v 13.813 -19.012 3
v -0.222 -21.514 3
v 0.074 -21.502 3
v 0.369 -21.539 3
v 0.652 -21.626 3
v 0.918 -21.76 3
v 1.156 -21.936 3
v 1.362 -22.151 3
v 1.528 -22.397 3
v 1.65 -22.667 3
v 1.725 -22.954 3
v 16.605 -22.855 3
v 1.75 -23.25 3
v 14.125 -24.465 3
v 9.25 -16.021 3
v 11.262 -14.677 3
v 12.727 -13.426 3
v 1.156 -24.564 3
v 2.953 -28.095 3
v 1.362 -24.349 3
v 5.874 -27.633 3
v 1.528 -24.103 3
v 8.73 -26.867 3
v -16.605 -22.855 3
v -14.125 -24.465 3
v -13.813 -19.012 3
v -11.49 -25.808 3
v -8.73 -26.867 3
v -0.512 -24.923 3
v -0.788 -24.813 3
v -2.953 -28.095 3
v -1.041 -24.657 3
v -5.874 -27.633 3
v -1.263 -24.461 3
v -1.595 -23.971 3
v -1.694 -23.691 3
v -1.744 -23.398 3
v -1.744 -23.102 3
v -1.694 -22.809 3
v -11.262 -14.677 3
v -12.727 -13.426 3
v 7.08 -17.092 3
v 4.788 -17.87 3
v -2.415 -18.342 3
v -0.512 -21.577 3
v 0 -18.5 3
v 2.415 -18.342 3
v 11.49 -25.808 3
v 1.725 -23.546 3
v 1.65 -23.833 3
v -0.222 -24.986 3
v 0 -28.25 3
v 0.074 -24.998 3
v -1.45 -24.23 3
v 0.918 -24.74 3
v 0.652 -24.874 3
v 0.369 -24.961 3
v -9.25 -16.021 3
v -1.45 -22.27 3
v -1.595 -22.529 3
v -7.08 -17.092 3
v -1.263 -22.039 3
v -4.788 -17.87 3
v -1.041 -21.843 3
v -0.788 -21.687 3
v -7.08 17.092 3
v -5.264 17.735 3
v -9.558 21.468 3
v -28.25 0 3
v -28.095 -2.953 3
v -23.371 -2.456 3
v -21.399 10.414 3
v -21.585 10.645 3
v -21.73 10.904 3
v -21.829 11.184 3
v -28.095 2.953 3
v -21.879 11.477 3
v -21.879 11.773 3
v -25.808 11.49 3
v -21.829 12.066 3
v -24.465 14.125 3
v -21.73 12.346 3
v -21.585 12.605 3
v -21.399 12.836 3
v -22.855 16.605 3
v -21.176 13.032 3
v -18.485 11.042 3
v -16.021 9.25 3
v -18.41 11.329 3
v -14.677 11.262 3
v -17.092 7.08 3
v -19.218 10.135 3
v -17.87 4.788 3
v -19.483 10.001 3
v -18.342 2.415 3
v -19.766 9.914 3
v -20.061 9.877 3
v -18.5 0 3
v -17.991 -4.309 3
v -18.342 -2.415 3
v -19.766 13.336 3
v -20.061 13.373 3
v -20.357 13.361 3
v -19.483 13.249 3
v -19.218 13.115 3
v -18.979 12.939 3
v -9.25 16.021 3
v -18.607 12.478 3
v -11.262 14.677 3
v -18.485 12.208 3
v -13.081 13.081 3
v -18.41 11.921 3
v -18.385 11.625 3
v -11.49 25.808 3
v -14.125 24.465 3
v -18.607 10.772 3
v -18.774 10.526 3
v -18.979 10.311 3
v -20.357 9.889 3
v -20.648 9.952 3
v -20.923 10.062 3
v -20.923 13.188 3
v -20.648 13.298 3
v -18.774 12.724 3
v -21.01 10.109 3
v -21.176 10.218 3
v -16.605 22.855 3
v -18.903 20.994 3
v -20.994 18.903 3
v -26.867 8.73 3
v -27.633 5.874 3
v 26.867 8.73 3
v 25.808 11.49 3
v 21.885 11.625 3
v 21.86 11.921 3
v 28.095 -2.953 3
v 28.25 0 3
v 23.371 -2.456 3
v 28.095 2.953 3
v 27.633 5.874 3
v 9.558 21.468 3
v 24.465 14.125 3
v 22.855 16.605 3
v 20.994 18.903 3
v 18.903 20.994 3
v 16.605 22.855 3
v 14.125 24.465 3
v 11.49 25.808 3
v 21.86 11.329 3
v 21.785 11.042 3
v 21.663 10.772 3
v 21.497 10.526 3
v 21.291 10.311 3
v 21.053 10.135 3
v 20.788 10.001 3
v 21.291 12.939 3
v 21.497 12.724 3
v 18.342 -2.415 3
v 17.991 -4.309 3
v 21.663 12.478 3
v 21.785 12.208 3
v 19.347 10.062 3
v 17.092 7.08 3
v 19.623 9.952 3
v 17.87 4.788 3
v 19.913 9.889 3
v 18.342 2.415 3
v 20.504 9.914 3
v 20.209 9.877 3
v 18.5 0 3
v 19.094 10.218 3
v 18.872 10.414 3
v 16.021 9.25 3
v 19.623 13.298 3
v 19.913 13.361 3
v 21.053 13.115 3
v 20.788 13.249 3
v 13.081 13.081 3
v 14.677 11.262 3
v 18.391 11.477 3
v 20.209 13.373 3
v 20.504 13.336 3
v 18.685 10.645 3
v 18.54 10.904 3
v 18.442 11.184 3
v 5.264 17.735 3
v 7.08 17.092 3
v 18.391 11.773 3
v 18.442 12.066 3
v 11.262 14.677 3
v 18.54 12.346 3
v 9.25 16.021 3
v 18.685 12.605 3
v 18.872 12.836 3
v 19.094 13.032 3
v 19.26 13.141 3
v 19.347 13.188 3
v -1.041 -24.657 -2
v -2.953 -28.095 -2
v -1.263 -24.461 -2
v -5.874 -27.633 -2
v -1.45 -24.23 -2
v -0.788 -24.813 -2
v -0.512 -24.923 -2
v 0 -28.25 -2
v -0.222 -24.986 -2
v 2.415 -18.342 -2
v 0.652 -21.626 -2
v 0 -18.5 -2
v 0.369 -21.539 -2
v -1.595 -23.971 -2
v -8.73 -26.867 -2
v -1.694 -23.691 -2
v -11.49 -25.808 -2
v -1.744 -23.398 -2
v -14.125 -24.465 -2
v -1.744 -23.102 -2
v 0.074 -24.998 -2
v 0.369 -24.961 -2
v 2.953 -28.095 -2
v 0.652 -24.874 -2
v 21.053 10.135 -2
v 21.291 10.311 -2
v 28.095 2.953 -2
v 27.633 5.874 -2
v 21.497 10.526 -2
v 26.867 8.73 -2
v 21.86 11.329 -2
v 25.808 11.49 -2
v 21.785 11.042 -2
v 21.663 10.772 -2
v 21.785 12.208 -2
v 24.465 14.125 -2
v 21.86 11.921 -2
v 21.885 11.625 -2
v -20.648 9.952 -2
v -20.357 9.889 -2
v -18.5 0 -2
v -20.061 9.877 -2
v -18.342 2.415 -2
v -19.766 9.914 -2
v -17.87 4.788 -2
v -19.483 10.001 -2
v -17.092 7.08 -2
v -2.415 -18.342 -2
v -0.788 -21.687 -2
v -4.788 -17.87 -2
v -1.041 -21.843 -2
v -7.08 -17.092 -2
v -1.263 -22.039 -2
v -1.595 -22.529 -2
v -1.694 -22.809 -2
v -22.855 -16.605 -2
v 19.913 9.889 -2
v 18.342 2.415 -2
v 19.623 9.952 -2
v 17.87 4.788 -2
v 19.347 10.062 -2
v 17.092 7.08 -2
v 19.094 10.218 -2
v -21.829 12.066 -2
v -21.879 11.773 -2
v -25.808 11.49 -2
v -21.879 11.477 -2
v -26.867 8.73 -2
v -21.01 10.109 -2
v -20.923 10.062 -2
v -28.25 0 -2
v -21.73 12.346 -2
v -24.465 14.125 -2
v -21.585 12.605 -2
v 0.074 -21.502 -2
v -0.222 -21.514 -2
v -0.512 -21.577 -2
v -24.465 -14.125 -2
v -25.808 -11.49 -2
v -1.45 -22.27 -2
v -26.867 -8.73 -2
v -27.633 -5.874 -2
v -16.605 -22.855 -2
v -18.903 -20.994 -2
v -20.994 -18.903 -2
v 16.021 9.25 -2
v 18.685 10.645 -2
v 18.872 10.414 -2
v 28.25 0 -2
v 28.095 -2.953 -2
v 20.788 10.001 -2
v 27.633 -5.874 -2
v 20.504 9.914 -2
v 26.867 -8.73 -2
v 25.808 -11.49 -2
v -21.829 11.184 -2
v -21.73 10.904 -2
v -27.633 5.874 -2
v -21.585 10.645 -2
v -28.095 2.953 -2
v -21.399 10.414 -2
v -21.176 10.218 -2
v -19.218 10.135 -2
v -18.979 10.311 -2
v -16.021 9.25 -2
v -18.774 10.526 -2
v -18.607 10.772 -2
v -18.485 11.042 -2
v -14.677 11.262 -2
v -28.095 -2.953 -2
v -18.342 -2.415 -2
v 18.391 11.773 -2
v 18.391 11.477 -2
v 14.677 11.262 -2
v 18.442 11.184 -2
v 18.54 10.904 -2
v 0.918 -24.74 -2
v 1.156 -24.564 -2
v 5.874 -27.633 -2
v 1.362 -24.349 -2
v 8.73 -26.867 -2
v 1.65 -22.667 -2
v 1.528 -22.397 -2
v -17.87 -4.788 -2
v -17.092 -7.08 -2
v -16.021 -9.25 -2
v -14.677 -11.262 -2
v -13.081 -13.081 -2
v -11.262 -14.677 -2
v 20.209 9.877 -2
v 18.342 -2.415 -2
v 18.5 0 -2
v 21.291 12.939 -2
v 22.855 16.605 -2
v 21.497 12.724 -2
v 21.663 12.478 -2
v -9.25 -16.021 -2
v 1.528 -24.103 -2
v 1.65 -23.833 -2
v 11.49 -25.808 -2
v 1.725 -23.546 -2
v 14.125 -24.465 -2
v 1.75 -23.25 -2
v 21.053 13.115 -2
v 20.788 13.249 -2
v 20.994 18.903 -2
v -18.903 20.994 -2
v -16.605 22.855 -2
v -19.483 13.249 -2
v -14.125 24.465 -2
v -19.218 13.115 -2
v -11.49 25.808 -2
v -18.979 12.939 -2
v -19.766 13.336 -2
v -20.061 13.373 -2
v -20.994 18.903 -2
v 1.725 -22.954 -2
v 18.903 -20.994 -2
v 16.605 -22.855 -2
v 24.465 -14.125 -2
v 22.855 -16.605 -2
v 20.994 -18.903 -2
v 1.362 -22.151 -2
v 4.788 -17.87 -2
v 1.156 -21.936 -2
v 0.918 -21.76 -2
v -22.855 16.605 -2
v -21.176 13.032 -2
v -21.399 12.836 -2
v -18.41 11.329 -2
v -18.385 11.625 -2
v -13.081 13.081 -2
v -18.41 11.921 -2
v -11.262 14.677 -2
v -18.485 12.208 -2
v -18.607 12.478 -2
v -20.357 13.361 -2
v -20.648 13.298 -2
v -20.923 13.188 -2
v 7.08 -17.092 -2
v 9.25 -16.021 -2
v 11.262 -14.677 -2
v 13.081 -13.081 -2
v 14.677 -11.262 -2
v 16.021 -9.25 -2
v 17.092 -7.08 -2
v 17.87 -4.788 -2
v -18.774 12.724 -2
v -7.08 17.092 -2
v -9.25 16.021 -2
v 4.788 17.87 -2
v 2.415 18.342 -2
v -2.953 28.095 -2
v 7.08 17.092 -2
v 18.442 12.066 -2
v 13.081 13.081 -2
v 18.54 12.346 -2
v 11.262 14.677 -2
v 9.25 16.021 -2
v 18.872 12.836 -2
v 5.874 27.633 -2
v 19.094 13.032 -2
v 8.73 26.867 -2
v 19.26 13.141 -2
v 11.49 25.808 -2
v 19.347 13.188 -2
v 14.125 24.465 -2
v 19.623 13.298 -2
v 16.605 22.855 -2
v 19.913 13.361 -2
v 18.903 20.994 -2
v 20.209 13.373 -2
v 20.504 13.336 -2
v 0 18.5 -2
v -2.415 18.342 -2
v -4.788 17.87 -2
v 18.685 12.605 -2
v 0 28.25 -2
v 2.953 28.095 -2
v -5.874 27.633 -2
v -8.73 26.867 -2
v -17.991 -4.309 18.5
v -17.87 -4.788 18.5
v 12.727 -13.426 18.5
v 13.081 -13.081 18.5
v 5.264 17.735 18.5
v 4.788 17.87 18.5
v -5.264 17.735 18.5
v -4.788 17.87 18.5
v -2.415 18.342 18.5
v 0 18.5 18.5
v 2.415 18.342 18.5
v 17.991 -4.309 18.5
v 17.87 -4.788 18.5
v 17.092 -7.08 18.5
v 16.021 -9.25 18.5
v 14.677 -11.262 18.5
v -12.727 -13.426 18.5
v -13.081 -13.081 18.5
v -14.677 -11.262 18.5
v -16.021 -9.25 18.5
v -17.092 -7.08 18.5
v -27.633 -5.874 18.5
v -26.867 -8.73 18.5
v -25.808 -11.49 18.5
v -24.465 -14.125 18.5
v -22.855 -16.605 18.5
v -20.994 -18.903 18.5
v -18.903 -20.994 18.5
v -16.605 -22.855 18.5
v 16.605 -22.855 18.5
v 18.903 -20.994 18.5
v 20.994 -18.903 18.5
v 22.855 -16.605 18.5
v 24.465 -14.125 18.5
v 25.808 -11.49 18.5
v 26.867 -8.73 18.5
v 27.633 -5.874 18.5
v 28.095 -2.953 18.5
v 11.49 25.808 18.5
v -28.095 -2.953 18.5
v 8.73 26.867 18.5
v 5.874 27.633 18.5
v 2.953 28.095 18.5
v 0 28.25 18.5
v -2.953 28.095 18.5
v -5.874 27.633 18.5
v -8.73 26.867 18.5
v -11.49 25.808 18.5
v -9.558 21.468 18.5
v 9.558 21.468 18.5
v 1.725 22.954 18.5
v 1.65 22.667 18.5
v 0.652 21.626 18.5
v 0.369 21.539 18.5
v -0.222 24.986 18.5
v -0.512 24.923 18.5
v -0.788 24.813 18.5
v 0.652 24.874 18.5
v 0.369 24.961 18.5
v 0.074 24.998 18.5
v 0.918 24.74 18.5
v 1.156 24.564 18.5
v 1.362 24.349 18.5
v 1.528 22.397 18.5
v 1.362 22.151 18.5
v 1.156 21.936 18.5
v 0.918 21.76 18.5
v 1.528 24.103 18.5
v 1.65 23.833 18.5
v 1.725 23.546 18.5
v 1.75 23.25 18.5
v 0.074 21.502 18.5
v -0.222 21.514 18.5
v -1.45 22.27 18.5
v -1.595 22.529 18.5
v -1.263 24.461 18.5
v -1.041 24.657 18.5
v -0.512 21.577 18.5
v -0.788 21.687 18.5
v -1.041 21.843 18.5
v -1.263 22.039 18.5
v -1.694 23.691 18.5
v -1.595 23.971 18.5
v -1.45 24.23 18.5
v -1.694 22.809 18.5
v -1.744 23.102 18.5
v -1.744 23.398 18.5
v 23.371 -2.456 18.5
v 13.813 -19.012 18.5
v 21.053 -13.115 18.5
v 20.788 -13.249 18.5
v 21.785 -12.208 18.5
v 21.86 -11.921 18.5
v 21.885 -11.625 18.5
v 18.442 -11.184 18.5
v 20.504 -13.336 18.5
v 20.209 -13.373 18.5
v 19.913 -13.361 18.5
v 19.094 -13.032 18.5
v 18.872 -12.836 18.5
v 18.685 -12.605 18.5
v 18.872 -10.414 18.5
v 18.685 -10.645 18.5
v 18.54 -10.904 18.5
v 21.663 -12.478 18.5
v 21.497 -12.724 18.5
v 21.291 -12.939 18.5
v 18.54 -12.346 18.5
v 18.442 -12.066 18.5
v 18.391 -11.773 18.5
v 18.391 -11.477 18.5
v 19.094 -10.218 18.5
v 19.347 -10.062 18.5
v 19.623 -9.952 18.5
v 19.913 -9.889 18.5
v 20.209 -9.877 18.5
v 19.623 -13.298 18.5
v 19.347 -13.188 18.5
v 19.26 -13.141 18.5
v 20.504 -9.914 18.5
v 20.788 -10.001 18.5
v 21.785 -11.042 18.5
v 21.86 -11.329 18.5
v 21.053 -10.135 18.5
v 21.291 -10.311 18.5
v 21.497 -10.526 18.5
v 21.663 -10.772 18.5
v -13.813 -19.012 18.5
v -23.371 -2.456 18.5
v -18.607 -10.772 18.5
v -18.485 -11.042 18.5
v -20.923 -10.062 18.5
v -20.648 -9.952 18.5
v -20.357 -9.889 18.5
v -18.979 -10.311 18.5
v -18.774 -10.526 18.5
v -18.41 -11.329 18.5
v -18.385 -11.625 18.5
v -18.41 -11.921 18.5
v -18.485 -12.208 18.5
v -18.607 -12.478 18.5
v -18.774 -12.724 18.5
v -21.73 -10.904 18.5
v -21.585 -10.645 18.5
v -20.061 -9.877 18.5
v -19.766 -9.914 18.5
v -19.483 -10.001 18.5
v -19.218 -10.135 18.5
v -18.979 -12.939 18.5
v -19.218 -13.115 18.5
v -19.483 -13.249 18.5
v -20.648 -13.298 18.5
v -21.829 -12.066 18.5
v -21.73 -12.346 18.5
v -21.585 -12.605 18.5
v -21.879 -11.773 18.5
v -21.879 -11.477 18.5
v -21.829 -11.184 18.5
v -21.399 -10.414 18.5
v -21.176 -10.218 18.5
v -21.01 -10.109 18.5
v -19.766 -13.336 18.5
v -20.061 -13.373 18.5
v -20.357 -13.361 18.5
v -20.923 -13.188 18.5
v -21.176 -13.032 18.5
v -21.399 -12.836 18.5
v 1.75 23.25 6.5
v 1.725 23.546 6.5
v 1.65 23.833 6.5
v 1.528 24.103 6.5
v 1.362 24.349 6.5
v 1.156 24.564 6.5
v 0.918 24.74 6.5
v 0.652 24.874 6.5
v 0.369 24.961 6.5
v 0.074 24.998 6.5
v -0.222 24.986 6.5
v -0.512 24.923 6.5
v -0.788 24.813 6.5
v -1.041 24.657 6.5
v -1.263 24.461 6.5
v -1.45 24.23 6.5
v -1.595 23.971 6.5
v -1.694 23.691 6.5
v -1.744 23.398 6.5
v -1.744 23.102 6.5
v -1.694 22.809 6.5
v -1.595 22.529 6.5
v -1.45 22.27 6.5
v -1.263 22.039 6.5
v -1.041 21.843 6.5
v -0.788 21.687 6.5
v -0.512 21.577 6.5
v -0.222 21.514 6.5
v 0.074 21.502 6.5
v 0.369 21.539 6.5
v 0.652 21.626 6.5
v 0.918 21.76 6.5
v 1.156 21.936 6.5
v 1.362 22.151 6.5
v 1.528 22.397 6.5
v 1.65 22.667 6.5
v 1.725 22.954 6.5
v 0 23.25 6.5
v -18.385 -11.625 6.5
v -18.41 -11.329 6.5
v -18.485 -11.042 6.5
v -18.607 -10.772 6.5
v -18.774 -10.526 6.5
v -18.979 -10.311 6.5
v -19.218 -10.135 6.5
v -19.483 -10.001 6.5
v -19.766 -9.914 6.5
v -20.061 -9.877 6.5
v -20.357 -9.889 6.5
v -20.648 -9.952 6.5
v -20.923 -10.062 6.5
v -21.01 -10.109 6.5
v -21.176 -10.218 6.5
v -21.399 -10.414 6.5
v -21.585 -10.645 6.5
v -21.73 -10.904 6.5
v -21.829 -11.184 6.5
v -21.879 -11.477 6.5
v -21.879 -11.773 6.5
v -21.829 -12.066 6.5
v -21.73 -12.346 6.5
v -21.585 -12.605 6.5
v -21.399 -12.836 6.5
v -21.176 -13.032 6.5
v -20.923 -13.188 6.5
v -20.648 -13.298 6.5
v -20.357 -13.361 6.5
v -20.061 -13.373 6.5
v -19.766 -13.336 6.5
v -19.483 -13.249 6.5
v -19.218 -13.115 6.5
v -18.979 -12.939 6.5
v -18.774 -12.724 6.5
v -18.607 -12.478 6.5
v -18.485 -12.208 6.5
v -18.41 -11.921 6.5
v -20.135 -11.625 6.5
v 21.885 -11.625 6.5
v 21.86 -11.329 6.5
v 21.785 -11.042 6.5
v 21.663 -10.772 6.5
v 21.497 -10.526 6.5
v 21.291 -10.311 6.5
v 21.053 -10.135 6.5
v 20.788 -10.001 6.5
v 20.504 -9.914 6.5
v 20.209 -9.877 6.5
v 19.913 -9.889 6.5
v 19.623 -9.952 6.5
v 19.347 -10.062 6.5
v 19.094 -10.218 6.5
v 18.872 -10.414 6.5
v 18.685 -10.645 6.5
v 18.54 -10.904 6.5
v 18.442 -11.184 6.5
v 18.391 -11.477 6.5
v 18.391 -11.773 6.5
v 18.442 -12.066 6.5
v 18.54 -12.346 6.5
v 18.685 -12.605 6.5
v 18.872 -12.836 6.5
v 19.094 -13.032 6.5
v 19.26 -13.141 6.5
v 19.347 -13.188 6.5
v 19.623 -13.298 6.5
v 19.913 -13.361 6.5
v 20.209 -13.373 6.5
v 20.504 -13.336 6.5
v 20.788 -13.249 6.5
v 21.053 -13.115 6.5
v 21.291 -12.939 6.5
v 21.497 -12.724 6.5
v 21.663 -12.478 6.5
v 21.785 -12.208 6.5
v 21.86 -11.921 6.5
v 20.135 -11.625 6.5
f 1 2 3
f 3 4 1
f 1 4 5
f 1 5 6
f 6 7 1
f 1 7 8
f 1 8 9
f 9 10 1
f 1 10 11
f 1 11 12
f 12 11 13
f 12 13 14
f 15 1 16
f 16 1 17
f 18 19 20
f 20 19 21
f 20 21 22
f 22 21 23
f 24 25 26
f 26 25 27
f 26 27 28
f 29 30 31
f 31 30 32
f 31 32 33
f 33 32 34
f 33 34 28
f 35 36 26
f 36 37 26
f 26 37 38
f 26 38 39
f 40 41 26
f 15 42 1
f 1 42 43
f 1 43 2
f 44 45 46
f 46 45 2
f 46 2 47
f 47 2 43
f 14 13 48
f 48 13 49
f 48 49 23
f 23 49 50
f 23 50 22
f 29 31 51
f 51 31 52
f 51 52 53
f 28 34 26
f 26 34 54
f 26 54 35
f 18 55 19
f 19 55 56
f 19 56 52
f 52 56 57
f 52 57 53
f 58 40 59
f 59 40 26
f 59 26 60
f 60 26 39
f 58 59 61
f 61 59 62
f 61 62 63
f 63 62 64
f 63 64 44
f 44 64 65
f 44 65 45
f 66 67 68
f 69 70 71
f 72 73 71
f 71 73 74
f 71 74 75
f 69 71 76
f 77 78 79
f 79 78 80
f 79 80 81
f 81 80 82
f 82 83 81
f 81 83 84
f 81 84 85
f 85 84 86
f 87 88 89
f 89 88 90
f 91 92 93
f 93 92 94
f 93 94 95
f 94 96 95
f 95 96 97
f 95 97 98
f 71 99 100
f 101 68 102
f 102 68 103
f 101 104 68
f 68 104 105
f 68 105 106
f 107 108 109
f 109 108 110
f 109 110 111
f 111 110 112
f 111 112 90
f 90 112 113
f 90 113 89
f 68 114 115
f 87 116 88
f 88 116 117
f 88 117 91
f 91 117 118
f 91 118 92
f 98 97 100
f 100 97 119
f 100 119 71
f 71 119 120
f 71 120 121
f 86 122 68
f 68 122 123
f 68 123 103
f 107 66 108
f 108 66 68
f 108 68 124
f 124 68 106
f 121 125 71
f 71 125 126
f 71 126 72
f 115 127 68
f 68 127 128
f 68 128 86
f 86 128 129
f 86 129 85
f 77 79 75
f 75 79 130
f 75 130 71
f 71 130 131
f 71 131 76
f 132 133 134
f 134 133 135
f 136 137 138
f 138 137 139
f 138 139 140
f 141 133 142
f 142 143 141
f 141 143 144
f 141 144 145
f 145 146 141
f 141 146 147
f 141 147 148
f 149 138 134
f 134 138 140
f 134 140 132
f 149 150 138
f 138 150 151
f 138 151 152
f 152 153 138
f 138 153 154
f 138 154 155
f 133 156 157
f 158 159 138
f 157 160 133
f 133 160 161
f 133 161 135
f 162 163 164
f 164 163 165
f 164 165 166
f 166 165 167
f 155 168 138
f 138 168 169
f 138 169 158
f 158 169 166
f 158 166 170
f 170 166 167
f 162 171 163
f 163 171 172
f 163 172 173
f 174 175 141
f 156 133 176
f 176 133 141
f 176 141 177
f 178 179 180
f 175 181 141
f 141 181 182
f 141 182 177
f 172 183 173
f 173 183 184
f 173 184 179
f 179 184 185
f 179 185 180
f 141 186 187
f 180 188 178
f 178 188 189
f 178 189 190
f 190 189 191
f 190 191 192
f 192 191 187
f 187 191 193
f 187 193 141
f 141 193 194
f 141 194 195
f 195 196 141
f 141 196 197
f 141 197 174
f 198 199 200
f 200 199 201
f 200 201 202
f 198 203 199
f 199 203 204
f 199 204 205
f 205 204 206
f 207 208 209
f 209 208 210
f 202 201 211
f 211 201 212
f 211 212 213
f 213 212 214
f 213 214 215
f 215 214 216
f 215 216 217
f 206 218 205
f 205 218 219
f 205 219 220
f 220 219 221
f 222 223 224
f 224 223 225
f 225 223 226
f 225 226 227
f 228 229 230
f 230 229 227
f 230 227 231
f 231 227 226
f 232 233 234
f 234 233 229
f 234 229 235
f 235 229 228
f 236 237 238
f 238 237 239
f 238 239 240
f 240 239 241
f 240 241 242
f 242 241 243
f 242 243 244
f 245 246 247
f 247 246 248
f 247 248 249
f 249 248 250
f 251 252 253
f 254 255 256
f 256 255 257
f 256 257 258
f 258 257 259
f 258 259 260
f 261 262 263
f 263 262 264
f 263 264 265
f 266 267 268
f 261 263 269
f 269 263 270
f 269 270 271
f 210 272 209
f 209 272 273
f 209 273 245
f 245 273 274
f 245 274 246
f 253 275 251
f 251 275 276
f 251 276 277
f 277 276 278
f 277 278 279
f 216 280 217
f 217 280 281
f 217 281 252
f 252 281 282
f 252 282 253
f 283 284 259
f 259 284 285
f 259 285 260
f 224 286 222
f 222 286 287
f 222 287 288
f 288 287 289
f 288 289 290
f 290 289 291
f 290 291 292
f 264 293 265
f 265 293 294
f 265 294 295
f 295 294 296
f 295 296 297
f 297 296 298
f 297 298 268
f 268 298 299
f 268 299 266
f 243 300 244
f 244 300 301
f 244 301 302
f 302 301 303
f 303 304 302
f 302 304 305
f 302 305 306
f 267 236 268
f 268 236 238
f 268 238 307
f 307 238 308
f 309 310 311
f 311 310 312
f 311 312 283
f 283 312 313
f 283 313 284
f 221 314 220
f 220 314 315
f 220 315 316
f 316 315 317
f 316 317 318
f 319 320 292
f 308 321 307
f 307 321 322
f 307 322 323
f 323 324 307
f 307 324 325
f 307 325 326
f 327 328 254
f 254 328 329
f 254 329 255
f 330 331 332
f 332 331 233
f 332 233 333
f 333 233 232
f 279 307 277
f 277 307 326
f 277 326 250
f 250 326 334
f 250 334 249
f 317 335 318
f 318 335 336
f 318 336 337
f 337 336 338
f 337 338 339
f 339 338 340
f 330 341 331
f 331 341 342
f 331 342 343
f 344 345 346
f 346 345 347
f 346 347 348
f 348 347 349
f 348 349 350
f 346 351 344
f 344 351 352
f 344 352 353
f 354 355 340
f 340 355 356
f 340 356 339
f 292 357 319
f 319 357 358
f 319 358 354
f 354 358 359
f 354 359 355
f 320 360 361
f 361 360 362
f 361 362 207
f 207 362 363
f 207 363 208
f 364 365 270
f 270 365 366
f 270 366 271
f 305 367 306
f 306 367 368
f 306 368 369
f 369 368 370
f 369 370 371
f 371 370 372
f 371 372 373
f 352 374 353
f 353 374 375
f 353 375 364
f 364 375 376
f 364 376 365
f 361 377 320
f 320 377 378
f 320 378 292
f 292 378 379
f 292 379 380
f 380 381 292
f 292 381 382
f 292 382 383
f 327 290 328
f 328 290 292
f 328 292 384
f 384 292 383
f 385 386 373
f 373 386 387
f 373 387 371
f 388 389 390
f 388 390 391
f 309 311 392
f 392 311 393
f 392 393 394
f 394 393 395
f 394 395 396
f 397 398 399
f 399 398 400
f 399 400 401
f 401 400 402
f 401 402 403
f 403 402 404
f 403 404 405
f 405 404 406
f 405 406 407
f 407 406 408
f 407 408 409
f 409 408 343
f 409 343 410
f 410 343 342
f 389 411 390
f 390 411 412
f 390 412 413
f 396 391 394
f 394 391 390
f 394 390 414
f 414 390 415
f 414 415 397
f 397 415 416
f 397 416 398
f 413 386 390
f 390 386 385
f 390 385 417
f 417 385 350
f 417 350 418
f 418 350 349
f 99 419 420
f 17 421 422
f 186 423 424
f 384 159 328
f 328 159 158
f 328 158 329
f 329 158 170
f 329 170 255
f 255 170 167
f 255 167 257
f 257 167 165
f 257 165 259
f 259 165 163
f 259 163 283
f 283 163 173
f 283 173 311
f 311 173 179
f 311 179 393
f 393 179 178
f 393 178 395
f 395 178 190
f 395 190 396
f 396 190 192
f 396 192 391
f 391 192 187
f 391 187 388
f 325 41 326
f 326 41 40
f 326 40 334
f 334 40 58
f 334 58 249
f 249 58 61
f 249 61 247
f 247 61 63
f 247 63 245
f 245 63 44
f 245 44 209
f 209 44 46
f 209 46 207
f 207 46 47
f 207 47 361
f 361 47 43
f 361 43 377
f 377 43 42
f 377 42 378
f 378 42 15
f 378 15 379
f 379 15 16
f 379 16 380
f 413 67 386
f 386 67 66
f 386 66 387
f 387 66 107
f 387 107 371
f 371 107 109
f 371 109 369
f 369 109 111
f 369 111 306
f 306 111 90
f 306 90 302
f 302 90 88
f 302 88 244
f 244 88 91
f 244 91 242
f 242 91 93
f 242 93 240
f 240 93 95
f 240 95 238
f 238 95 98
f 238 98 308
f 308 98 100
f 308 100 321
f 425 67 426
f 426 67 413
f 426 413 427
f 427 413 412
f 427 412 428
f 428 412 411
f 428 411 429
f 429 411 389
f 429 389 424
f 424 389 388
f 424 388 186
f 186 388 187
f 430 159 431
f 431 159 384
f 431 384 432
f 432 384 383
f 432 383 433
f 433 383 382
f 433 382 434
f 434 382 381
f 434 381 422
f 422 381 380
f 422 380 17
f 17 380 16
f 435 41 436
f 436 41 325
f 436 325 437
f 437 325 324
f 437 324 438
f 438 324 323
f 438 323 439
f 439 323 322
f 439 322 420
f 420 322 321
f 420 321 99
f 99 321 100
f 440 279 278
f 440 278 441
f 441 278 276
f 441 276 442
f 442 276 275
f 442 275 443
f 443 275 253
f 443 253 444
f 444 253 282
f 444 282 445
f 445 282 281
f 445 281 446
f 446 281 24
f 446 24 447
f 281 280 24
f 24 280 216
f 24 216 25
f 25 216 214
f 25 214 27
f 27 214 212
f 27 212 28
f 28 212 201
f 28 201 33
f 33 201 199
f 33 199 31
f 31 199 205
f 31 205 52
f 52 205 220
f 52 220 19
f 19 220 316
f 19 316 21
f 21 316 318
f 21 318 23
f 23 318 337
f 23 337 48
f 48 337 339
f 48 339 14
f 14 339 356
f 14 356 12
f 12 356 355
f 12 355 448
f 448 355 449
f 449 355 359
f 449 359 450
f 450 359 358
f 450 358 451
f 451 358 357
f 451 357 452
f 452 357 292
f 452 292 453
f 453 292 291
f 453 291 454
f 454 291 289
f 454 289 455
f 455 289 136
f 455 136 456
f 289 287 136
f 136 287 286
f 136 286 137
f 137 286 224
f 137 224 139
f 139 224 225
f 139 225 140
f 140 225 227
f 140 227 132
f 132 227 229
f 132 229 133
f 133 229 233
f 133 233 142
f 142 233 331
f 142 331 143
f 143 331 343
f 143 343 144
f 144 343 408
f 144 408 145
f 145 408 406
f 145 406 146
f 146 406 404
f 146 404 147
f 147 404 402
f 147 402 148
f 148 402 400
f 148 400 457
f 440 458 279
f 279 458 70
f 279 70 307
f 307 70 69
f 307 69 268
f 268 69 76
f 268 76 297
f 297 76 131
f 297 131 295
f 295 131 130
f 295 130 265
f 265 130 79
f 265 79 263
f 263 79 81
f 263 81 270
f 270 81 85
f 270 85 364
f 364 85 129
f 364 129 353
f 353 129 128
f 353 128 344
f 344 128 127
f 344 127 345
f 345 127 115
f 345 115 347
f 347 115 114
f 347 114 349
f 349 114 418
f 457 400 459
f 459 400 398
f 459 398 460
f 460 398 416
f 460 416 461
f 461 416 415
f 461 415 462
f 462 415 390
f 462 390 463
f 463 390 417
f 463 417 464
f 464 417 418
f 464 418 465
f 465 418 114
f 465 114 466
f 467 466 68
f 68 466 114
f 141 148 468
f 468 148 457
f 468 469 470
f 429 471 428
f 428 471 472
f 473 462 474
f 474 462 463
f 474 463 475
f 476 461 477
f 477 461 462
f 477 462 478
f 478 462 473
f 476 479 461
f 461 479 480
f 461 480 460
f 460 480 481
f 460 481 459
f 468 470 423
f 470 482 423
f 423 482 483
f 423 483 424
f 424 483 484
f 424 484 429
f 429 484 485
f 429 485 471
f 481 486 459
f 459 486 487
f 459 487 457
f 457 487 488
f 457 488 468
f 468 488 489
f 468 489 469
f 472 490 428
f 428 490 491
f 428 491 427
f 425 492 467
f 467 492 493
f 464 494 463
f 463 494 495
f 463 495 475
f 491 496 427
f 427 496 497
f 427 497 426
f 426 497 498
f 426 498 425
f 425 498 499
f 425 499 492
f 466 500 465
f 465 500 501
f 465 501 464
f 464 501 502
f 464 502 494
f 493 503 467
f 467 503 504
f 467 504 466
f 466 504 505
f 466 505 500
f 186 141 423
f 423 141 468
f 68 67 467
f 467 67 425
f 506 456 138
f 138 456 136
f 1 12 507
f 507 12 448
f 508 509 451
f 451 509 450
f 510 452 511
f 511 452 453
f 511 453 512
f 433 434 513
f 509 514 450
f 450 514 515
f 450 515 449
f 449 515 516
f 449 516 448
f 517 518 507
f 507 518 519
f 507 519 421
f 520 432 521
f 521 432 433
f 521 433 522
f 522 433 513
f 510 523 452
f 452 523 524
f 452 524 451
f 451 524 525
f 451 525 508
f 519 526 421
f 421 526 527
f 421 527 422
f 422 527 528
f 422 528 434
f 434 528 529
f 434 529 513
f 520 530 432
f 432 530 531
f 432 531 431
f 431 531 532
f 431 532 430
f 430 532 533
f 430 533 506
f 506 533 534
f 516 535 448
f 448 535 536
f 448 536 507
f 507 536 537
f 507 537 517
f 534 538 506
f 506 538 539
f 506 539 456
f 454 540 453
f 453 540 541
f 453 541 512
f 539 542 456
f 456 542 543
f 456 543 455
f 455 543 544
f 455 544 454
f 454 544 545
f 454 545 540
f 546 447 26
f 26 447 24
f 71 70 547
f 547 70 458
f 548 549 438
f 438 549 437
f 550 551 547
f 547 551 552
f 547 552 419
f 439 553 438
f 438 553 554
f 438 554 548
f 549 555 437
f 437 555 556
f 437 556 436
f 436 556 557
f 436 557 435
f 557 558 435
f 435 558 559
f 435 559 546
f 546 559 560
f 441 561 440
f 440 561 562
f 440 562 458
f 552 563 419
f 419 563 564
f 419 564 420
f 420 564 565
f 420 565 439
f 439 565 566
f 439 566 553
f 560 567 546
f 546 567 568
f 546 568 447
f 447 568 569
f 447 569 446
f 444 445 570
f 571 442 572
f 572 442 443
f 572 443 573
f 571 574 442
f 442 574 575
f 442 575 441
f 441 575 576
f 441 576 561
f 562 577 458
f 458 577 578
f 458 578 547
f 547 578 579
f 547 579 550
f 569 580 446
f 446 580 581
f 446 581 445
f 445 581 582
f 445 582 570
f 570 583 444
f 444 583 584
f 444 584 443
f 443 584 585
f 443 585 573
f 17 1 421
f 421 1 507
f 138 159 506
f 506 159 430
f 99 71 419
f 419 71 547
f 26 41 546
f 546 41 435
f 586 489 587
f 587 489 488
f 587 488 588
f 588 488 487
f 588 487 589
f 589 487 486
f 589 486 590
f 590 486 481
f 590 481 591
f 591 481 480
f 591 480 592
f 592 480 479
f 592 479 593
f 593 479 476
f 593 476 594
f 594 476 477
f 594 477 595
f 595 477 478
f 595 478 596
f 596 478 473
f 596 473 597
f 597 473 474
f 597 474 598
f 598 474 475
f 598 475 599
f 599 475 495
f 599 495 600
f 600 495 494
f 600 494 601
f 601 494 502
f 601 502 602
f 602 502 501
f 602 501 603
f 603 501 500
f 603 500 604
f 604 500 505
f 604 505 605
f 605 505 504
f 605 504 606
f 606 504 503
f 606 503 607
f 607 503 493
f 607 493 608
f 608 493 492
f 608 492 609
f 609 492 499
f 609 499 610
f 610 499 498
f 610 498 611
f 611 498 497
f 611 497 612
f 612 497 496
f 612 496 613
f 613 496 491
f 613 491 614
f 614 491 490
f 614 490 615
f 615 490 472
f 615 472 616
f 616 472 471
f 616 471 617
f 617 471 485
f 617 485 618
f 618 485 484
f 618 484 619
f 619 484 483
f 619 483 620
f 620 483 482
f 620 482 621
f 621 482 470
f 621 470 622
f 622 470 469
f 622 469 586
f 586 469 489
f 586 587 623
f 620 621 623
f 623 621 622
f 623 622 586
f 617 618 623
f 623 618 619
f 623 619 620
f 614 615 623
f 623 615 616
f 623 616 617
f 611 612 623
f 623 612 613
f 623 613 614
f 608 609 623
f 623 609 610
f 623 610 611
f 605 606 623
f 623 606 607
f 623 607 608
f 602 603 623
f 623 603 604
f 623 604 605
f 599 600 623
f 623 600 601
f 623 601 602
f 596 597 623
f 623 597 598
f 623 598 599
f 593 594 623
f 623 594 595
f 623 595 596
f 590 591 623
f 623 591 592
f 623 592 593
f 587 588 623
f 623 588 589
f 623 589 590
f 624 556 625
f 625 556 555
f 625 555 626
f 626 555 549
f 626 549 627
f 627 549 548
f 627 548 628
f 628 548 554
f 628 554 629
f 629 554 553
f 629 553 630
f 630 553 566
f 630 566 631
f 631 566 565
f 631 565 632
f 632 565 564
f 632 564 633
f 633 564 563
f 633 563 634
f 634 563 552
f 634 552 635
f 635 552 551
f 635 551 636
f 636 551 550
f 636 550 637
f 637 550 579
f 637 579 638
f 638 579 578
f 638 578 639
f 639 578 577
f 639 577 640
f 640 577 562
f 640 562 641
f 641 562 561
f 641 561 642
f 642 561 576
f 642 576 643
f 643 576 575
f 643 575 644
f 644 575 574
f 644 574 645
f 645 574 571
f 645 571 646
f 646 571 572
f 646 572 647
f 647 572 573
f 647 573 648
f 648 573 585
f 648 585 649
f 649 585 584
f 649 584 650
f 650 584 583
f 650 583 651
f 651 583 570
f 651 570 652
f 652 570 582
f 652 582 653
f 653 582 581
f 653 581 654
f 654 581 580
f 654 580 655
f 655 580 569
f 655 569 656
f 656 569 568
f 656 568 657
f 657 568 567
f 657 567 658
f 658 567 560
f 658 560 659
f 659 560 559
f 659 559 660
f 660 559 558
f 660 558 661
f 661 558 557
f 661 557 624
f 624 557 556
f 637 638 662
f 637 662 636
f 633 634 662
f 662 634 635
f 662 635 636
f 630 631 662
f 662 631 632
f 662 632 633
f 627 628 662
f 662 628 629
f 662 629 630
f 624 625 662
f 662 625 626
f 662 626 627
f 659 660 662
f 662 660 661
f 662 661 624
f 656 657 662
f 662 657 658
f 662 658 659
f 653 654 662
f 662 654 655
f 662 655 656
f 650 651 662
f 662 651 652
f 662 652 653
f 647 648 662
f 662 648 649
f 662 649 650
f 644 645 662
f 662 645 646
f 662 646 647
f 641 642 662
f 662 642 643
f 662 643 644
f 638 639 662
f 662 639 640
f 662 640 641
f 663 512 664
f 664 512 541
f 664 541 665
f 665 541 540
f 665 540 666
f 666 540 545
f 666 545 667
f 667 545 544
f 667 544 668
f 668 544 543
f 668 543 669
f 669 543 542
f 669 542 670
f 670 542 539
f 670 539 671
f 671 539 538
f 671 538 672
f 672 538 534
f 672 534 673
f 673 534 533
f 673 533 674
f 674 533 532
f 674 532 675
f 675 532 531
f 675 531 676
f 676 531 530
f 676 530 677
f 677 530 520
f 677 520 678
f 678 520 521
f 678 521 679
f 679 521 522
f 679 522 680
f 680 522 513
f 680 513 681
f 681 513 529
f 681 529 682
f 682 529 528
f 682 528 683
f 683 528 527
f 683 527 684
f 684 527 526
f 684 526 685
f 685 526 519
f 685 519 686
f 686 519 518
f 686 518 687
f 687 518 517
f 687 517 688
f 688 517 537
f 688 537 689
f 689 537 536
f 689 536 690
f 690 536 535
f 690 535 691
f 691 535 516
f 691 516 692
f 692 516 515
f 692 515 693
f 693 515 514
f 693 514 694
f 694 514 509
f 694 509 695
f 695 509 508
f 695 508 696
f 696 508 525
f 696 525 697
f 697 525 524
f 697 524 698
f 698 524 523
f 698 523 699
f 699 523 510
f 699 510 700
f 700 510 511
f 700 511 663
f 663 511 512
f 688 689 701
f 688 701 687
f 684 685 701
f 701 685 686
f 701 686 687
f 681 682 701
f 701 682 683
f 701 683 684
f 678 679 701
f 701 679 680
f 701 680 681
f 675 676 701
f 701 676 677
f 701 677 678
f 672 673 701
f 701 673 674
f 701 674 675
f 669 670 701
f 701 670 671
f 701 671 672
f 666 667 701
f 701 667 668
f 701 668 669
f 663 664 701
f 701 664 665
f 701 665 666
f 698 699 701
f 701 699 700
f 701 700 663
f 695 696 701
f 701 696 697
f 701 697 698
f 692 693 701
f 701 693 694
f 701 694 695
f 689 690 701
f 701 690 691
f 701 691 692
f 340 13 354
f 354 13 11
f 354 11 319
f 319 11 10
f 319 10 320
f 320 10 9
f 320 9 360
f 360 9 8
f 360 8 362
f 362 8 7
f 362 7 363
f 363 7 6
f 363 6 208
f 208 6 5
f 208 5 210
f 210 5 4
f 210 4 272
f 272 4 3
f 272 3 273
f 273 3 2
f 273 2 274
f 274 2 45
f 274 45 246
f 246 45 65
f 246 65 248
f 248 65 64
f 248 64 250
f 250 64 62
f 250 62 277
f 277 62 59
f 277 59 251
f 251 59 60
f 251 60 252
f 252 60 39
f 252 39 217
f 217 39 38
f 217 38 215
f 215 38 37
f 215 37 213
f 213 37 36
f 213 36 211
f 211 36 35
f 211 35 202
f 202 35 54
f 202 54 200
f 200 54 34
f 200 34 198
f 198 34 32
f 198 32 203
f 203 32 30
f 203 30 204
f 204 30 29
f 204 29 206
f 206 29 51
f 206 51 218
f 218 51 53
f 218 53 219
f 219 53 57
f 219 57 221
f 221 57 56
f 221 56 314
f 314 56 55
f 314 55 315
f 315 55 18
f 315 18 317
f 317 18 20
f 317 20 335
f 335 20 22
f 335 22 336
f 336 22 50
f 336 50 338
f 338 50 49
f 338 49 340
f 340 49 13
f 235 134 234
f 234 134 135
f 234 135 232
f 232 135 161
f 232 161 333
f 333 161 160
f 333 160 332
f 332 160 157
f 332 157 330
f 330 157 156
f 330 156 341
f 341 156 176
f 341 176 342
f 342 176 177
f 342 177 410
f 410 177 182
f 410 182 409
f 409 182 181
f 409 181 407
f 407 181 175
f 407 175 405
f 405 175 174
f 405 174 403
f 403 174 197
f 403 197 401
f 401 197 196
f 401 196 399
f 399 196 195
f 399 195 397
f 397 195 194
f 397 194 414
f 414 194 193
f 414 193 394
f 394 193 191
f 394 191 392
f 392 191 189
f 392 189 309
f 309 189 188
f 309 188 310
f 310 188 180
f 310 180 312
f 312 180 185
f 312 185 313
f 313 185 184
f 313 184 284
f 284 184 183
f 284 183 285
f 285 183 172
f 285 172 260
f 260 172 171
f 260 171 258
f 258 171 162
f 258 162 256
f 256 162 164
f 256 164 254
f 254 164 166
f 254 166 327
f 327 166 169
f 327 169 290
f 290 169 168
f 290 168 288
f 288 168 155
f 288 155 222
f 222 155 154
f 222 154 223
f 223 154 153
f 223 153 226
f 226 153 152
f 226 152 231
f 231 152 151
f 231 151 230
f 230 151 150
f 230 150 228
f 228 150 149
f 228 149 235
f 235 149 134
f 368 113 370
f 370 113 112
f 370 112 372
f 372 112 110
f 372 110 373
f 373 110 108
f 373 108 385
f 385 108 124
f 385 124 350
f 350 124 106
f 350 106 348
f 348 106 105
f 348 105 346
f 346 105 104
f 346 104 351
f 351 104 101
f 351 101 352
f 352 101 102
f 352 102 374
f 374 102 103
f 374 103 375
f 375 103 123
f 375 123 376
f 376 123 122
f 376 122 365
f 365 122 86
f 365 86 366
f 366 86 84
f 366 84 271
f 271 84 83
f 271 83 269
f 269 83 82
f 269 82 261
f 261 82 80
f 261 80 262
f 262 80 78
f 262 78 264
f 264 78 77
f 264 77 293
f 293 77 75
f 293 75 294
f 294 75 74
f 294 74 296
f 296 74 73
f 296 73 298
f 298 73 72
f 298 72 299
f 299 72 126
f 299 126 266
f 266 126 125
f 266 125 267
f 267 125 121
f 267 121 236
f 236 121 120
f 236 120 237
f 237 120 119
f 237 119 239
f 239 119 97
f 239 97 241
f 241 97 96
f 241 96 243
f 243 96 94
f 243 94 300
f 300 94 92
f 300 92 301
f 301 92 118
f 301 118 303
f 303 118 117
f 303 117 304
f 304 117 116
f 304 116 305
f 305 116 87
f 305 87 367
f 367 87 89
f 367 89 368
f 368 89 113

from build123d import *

# Parameters (mm, degrees)
BOSS_EXTRUDE1_DEPTH = 15.5
CHAMFER1_START      = 3
CHAMFER1_DEPTH      = 16
CIRPATTERN1_COUNT   = 3
SKETCH4_R           = 1.75
CUT_EXTRUDE1_DEPTH  = 12
CIRPATTERN2_COUNT   = 3
SKETCH5_R           = 1.75
CUT_EXTRUDE2_DEPTH  = 43.852946223
CIRPATTERN3_COUNT   = 3


with BuildPart() as part:
    # Sketch2 → Revolve1 (revolve)
    with BuildSketch(Plane(origin=(0, 0, 0), x_dir=(0, 0, -1), z_dir=(1, 0, 0)), mode=Mode.PRIVATE) as revolve1_sk:
        Polygon((0, 28.25), (-3, 28.25), (-3, 18.5), (0, 18.5), (2, 18.5), (2, 28.25), align=None)
    revolve(revolve1_sk.sketch.rotate(Axis((0, 0, 0), (0, 0, 1)), 90), axis=Axis((0, 0, 0), (0, 0, 1)))

    # Sketch3 → Boss-Extrude1 (add)
    with BuildSketch(Plane.XY.offset(3)):
        with BuildLine():
            Line((-7.524627897, 16.900590966), (-11.490310167, 25.807659178))
            ThreePointArc((-11.490310167, 25.807659178), (0, 28.25), (11.490310167, 25.807659178))
            Line((11.490310167, 25.807659178), (7.524627897, 16.900590966))
            ThreePointArc((7.524627897, 16.900590966), (0, 18.5), (-7.524627897, 16.900590966))
        make_face()
    boss_extrude1 = extrude(amount=BOSS_EXTRUDE1_DEPTH)

    # Chamfer1: read off the stored shape, not the designer's step
    # Chamfer1 outline → Chamfer1 (cut)
    with BuildSketch(Plane.XY.offset(CHAMFER1_START)):
        with BuildLine():
            Line((7.524627897, 16.900590966), (9.558311113, 21.468318255))
            Line((9.558311113, 21.468318255), (5.263960206, 17.735295964))
            ThreePointArc((5.263960206, 17.735295964), (6.407899775, 17.354792435), (7.524627897, 16.900590966))
        make_face()
        with BuildLine():
            ThreePointArc((-7.524627897, 16.900590966), (-6.407899775, 17.354792435), (-5.263960206, 17.735295964))
            Line((-5.263960206, 17.735295964), (-9.558311112, 21.468318255))
            Line((-9.558311112, 21.468318255), (-7.524627897, 16.900590966))
        make_face()
    chamfer1 = extrude(amount=CHAMFER1_DEPTH, mode=Mode.SUBTRACT)

    # CirPattern1: Boss-Extrude1, Chamfer1 ×3 about axis
    cirpattern1_axis = Axis((0, 0, 0), (0, 0, 1))
    add([boss_extrude1.rotate(cirpattern1_axis, i * 360 / CIRPATTERN1_COUNT) for i in range(1, CIRPATTERN1_COUNT)])
    add([chamfer1.rotate(cirpattern1_axis, i * 360 / CIRPATTERN1_COUNT) for i in range(1, CIRPATTERN1_COUNT)], mode=Mode.SUBTRACT)

    # Sketch4 → Cut-Extrude1 (cut)
    with BuildSketch(Plane.XY.offset(18.5)):
        with Locations((0, 23.25)):
            Circle(SKETCH4_R)
    cut_extrude1 = extrude(amount=-CUT_EXTRUDE1_DEPTH, mode=Mode.SUBTRACT)

    # CirPattern2: Cut-Extrude1 ×3 about axis
    cirpattern2_axis = Axis((0, 0, 0), (0, 0, 1))
    for i in range(1, CIRPATTERN2_COUNT):
        add(cut_extrude1.rotate(cirpattern2_axis, i * 360 / CIRPATTERN2_COUNT), mode=Mode.SUBTRACT)

    # Sketch5 → Cut-Extrude2 (cut, through all)
    with BuildSketch(Plane.XY.offset(3)):
        with Locations((0, -23.25)):
            Circle(SKETCH5_R)
    cut_extrude2 = extrude(amount=-CUT_EXTRUDE2_DEPTH, mode=Mode.SUBTRACT)

    # CirPattern3: Cut-Extrude2 ×3 about axis
    cirpattern3_axis = Axis((0, 0, 0), (0, 0, 1))
    for i in range(1, CIRPATTERN3_COUNT):
        add(cut_extrude2.rotate(cirpattern3_axis, i * 360 / CIRPATTERN3_COUNT), mode=Mode.SUBTRACT)


solid = part.part
